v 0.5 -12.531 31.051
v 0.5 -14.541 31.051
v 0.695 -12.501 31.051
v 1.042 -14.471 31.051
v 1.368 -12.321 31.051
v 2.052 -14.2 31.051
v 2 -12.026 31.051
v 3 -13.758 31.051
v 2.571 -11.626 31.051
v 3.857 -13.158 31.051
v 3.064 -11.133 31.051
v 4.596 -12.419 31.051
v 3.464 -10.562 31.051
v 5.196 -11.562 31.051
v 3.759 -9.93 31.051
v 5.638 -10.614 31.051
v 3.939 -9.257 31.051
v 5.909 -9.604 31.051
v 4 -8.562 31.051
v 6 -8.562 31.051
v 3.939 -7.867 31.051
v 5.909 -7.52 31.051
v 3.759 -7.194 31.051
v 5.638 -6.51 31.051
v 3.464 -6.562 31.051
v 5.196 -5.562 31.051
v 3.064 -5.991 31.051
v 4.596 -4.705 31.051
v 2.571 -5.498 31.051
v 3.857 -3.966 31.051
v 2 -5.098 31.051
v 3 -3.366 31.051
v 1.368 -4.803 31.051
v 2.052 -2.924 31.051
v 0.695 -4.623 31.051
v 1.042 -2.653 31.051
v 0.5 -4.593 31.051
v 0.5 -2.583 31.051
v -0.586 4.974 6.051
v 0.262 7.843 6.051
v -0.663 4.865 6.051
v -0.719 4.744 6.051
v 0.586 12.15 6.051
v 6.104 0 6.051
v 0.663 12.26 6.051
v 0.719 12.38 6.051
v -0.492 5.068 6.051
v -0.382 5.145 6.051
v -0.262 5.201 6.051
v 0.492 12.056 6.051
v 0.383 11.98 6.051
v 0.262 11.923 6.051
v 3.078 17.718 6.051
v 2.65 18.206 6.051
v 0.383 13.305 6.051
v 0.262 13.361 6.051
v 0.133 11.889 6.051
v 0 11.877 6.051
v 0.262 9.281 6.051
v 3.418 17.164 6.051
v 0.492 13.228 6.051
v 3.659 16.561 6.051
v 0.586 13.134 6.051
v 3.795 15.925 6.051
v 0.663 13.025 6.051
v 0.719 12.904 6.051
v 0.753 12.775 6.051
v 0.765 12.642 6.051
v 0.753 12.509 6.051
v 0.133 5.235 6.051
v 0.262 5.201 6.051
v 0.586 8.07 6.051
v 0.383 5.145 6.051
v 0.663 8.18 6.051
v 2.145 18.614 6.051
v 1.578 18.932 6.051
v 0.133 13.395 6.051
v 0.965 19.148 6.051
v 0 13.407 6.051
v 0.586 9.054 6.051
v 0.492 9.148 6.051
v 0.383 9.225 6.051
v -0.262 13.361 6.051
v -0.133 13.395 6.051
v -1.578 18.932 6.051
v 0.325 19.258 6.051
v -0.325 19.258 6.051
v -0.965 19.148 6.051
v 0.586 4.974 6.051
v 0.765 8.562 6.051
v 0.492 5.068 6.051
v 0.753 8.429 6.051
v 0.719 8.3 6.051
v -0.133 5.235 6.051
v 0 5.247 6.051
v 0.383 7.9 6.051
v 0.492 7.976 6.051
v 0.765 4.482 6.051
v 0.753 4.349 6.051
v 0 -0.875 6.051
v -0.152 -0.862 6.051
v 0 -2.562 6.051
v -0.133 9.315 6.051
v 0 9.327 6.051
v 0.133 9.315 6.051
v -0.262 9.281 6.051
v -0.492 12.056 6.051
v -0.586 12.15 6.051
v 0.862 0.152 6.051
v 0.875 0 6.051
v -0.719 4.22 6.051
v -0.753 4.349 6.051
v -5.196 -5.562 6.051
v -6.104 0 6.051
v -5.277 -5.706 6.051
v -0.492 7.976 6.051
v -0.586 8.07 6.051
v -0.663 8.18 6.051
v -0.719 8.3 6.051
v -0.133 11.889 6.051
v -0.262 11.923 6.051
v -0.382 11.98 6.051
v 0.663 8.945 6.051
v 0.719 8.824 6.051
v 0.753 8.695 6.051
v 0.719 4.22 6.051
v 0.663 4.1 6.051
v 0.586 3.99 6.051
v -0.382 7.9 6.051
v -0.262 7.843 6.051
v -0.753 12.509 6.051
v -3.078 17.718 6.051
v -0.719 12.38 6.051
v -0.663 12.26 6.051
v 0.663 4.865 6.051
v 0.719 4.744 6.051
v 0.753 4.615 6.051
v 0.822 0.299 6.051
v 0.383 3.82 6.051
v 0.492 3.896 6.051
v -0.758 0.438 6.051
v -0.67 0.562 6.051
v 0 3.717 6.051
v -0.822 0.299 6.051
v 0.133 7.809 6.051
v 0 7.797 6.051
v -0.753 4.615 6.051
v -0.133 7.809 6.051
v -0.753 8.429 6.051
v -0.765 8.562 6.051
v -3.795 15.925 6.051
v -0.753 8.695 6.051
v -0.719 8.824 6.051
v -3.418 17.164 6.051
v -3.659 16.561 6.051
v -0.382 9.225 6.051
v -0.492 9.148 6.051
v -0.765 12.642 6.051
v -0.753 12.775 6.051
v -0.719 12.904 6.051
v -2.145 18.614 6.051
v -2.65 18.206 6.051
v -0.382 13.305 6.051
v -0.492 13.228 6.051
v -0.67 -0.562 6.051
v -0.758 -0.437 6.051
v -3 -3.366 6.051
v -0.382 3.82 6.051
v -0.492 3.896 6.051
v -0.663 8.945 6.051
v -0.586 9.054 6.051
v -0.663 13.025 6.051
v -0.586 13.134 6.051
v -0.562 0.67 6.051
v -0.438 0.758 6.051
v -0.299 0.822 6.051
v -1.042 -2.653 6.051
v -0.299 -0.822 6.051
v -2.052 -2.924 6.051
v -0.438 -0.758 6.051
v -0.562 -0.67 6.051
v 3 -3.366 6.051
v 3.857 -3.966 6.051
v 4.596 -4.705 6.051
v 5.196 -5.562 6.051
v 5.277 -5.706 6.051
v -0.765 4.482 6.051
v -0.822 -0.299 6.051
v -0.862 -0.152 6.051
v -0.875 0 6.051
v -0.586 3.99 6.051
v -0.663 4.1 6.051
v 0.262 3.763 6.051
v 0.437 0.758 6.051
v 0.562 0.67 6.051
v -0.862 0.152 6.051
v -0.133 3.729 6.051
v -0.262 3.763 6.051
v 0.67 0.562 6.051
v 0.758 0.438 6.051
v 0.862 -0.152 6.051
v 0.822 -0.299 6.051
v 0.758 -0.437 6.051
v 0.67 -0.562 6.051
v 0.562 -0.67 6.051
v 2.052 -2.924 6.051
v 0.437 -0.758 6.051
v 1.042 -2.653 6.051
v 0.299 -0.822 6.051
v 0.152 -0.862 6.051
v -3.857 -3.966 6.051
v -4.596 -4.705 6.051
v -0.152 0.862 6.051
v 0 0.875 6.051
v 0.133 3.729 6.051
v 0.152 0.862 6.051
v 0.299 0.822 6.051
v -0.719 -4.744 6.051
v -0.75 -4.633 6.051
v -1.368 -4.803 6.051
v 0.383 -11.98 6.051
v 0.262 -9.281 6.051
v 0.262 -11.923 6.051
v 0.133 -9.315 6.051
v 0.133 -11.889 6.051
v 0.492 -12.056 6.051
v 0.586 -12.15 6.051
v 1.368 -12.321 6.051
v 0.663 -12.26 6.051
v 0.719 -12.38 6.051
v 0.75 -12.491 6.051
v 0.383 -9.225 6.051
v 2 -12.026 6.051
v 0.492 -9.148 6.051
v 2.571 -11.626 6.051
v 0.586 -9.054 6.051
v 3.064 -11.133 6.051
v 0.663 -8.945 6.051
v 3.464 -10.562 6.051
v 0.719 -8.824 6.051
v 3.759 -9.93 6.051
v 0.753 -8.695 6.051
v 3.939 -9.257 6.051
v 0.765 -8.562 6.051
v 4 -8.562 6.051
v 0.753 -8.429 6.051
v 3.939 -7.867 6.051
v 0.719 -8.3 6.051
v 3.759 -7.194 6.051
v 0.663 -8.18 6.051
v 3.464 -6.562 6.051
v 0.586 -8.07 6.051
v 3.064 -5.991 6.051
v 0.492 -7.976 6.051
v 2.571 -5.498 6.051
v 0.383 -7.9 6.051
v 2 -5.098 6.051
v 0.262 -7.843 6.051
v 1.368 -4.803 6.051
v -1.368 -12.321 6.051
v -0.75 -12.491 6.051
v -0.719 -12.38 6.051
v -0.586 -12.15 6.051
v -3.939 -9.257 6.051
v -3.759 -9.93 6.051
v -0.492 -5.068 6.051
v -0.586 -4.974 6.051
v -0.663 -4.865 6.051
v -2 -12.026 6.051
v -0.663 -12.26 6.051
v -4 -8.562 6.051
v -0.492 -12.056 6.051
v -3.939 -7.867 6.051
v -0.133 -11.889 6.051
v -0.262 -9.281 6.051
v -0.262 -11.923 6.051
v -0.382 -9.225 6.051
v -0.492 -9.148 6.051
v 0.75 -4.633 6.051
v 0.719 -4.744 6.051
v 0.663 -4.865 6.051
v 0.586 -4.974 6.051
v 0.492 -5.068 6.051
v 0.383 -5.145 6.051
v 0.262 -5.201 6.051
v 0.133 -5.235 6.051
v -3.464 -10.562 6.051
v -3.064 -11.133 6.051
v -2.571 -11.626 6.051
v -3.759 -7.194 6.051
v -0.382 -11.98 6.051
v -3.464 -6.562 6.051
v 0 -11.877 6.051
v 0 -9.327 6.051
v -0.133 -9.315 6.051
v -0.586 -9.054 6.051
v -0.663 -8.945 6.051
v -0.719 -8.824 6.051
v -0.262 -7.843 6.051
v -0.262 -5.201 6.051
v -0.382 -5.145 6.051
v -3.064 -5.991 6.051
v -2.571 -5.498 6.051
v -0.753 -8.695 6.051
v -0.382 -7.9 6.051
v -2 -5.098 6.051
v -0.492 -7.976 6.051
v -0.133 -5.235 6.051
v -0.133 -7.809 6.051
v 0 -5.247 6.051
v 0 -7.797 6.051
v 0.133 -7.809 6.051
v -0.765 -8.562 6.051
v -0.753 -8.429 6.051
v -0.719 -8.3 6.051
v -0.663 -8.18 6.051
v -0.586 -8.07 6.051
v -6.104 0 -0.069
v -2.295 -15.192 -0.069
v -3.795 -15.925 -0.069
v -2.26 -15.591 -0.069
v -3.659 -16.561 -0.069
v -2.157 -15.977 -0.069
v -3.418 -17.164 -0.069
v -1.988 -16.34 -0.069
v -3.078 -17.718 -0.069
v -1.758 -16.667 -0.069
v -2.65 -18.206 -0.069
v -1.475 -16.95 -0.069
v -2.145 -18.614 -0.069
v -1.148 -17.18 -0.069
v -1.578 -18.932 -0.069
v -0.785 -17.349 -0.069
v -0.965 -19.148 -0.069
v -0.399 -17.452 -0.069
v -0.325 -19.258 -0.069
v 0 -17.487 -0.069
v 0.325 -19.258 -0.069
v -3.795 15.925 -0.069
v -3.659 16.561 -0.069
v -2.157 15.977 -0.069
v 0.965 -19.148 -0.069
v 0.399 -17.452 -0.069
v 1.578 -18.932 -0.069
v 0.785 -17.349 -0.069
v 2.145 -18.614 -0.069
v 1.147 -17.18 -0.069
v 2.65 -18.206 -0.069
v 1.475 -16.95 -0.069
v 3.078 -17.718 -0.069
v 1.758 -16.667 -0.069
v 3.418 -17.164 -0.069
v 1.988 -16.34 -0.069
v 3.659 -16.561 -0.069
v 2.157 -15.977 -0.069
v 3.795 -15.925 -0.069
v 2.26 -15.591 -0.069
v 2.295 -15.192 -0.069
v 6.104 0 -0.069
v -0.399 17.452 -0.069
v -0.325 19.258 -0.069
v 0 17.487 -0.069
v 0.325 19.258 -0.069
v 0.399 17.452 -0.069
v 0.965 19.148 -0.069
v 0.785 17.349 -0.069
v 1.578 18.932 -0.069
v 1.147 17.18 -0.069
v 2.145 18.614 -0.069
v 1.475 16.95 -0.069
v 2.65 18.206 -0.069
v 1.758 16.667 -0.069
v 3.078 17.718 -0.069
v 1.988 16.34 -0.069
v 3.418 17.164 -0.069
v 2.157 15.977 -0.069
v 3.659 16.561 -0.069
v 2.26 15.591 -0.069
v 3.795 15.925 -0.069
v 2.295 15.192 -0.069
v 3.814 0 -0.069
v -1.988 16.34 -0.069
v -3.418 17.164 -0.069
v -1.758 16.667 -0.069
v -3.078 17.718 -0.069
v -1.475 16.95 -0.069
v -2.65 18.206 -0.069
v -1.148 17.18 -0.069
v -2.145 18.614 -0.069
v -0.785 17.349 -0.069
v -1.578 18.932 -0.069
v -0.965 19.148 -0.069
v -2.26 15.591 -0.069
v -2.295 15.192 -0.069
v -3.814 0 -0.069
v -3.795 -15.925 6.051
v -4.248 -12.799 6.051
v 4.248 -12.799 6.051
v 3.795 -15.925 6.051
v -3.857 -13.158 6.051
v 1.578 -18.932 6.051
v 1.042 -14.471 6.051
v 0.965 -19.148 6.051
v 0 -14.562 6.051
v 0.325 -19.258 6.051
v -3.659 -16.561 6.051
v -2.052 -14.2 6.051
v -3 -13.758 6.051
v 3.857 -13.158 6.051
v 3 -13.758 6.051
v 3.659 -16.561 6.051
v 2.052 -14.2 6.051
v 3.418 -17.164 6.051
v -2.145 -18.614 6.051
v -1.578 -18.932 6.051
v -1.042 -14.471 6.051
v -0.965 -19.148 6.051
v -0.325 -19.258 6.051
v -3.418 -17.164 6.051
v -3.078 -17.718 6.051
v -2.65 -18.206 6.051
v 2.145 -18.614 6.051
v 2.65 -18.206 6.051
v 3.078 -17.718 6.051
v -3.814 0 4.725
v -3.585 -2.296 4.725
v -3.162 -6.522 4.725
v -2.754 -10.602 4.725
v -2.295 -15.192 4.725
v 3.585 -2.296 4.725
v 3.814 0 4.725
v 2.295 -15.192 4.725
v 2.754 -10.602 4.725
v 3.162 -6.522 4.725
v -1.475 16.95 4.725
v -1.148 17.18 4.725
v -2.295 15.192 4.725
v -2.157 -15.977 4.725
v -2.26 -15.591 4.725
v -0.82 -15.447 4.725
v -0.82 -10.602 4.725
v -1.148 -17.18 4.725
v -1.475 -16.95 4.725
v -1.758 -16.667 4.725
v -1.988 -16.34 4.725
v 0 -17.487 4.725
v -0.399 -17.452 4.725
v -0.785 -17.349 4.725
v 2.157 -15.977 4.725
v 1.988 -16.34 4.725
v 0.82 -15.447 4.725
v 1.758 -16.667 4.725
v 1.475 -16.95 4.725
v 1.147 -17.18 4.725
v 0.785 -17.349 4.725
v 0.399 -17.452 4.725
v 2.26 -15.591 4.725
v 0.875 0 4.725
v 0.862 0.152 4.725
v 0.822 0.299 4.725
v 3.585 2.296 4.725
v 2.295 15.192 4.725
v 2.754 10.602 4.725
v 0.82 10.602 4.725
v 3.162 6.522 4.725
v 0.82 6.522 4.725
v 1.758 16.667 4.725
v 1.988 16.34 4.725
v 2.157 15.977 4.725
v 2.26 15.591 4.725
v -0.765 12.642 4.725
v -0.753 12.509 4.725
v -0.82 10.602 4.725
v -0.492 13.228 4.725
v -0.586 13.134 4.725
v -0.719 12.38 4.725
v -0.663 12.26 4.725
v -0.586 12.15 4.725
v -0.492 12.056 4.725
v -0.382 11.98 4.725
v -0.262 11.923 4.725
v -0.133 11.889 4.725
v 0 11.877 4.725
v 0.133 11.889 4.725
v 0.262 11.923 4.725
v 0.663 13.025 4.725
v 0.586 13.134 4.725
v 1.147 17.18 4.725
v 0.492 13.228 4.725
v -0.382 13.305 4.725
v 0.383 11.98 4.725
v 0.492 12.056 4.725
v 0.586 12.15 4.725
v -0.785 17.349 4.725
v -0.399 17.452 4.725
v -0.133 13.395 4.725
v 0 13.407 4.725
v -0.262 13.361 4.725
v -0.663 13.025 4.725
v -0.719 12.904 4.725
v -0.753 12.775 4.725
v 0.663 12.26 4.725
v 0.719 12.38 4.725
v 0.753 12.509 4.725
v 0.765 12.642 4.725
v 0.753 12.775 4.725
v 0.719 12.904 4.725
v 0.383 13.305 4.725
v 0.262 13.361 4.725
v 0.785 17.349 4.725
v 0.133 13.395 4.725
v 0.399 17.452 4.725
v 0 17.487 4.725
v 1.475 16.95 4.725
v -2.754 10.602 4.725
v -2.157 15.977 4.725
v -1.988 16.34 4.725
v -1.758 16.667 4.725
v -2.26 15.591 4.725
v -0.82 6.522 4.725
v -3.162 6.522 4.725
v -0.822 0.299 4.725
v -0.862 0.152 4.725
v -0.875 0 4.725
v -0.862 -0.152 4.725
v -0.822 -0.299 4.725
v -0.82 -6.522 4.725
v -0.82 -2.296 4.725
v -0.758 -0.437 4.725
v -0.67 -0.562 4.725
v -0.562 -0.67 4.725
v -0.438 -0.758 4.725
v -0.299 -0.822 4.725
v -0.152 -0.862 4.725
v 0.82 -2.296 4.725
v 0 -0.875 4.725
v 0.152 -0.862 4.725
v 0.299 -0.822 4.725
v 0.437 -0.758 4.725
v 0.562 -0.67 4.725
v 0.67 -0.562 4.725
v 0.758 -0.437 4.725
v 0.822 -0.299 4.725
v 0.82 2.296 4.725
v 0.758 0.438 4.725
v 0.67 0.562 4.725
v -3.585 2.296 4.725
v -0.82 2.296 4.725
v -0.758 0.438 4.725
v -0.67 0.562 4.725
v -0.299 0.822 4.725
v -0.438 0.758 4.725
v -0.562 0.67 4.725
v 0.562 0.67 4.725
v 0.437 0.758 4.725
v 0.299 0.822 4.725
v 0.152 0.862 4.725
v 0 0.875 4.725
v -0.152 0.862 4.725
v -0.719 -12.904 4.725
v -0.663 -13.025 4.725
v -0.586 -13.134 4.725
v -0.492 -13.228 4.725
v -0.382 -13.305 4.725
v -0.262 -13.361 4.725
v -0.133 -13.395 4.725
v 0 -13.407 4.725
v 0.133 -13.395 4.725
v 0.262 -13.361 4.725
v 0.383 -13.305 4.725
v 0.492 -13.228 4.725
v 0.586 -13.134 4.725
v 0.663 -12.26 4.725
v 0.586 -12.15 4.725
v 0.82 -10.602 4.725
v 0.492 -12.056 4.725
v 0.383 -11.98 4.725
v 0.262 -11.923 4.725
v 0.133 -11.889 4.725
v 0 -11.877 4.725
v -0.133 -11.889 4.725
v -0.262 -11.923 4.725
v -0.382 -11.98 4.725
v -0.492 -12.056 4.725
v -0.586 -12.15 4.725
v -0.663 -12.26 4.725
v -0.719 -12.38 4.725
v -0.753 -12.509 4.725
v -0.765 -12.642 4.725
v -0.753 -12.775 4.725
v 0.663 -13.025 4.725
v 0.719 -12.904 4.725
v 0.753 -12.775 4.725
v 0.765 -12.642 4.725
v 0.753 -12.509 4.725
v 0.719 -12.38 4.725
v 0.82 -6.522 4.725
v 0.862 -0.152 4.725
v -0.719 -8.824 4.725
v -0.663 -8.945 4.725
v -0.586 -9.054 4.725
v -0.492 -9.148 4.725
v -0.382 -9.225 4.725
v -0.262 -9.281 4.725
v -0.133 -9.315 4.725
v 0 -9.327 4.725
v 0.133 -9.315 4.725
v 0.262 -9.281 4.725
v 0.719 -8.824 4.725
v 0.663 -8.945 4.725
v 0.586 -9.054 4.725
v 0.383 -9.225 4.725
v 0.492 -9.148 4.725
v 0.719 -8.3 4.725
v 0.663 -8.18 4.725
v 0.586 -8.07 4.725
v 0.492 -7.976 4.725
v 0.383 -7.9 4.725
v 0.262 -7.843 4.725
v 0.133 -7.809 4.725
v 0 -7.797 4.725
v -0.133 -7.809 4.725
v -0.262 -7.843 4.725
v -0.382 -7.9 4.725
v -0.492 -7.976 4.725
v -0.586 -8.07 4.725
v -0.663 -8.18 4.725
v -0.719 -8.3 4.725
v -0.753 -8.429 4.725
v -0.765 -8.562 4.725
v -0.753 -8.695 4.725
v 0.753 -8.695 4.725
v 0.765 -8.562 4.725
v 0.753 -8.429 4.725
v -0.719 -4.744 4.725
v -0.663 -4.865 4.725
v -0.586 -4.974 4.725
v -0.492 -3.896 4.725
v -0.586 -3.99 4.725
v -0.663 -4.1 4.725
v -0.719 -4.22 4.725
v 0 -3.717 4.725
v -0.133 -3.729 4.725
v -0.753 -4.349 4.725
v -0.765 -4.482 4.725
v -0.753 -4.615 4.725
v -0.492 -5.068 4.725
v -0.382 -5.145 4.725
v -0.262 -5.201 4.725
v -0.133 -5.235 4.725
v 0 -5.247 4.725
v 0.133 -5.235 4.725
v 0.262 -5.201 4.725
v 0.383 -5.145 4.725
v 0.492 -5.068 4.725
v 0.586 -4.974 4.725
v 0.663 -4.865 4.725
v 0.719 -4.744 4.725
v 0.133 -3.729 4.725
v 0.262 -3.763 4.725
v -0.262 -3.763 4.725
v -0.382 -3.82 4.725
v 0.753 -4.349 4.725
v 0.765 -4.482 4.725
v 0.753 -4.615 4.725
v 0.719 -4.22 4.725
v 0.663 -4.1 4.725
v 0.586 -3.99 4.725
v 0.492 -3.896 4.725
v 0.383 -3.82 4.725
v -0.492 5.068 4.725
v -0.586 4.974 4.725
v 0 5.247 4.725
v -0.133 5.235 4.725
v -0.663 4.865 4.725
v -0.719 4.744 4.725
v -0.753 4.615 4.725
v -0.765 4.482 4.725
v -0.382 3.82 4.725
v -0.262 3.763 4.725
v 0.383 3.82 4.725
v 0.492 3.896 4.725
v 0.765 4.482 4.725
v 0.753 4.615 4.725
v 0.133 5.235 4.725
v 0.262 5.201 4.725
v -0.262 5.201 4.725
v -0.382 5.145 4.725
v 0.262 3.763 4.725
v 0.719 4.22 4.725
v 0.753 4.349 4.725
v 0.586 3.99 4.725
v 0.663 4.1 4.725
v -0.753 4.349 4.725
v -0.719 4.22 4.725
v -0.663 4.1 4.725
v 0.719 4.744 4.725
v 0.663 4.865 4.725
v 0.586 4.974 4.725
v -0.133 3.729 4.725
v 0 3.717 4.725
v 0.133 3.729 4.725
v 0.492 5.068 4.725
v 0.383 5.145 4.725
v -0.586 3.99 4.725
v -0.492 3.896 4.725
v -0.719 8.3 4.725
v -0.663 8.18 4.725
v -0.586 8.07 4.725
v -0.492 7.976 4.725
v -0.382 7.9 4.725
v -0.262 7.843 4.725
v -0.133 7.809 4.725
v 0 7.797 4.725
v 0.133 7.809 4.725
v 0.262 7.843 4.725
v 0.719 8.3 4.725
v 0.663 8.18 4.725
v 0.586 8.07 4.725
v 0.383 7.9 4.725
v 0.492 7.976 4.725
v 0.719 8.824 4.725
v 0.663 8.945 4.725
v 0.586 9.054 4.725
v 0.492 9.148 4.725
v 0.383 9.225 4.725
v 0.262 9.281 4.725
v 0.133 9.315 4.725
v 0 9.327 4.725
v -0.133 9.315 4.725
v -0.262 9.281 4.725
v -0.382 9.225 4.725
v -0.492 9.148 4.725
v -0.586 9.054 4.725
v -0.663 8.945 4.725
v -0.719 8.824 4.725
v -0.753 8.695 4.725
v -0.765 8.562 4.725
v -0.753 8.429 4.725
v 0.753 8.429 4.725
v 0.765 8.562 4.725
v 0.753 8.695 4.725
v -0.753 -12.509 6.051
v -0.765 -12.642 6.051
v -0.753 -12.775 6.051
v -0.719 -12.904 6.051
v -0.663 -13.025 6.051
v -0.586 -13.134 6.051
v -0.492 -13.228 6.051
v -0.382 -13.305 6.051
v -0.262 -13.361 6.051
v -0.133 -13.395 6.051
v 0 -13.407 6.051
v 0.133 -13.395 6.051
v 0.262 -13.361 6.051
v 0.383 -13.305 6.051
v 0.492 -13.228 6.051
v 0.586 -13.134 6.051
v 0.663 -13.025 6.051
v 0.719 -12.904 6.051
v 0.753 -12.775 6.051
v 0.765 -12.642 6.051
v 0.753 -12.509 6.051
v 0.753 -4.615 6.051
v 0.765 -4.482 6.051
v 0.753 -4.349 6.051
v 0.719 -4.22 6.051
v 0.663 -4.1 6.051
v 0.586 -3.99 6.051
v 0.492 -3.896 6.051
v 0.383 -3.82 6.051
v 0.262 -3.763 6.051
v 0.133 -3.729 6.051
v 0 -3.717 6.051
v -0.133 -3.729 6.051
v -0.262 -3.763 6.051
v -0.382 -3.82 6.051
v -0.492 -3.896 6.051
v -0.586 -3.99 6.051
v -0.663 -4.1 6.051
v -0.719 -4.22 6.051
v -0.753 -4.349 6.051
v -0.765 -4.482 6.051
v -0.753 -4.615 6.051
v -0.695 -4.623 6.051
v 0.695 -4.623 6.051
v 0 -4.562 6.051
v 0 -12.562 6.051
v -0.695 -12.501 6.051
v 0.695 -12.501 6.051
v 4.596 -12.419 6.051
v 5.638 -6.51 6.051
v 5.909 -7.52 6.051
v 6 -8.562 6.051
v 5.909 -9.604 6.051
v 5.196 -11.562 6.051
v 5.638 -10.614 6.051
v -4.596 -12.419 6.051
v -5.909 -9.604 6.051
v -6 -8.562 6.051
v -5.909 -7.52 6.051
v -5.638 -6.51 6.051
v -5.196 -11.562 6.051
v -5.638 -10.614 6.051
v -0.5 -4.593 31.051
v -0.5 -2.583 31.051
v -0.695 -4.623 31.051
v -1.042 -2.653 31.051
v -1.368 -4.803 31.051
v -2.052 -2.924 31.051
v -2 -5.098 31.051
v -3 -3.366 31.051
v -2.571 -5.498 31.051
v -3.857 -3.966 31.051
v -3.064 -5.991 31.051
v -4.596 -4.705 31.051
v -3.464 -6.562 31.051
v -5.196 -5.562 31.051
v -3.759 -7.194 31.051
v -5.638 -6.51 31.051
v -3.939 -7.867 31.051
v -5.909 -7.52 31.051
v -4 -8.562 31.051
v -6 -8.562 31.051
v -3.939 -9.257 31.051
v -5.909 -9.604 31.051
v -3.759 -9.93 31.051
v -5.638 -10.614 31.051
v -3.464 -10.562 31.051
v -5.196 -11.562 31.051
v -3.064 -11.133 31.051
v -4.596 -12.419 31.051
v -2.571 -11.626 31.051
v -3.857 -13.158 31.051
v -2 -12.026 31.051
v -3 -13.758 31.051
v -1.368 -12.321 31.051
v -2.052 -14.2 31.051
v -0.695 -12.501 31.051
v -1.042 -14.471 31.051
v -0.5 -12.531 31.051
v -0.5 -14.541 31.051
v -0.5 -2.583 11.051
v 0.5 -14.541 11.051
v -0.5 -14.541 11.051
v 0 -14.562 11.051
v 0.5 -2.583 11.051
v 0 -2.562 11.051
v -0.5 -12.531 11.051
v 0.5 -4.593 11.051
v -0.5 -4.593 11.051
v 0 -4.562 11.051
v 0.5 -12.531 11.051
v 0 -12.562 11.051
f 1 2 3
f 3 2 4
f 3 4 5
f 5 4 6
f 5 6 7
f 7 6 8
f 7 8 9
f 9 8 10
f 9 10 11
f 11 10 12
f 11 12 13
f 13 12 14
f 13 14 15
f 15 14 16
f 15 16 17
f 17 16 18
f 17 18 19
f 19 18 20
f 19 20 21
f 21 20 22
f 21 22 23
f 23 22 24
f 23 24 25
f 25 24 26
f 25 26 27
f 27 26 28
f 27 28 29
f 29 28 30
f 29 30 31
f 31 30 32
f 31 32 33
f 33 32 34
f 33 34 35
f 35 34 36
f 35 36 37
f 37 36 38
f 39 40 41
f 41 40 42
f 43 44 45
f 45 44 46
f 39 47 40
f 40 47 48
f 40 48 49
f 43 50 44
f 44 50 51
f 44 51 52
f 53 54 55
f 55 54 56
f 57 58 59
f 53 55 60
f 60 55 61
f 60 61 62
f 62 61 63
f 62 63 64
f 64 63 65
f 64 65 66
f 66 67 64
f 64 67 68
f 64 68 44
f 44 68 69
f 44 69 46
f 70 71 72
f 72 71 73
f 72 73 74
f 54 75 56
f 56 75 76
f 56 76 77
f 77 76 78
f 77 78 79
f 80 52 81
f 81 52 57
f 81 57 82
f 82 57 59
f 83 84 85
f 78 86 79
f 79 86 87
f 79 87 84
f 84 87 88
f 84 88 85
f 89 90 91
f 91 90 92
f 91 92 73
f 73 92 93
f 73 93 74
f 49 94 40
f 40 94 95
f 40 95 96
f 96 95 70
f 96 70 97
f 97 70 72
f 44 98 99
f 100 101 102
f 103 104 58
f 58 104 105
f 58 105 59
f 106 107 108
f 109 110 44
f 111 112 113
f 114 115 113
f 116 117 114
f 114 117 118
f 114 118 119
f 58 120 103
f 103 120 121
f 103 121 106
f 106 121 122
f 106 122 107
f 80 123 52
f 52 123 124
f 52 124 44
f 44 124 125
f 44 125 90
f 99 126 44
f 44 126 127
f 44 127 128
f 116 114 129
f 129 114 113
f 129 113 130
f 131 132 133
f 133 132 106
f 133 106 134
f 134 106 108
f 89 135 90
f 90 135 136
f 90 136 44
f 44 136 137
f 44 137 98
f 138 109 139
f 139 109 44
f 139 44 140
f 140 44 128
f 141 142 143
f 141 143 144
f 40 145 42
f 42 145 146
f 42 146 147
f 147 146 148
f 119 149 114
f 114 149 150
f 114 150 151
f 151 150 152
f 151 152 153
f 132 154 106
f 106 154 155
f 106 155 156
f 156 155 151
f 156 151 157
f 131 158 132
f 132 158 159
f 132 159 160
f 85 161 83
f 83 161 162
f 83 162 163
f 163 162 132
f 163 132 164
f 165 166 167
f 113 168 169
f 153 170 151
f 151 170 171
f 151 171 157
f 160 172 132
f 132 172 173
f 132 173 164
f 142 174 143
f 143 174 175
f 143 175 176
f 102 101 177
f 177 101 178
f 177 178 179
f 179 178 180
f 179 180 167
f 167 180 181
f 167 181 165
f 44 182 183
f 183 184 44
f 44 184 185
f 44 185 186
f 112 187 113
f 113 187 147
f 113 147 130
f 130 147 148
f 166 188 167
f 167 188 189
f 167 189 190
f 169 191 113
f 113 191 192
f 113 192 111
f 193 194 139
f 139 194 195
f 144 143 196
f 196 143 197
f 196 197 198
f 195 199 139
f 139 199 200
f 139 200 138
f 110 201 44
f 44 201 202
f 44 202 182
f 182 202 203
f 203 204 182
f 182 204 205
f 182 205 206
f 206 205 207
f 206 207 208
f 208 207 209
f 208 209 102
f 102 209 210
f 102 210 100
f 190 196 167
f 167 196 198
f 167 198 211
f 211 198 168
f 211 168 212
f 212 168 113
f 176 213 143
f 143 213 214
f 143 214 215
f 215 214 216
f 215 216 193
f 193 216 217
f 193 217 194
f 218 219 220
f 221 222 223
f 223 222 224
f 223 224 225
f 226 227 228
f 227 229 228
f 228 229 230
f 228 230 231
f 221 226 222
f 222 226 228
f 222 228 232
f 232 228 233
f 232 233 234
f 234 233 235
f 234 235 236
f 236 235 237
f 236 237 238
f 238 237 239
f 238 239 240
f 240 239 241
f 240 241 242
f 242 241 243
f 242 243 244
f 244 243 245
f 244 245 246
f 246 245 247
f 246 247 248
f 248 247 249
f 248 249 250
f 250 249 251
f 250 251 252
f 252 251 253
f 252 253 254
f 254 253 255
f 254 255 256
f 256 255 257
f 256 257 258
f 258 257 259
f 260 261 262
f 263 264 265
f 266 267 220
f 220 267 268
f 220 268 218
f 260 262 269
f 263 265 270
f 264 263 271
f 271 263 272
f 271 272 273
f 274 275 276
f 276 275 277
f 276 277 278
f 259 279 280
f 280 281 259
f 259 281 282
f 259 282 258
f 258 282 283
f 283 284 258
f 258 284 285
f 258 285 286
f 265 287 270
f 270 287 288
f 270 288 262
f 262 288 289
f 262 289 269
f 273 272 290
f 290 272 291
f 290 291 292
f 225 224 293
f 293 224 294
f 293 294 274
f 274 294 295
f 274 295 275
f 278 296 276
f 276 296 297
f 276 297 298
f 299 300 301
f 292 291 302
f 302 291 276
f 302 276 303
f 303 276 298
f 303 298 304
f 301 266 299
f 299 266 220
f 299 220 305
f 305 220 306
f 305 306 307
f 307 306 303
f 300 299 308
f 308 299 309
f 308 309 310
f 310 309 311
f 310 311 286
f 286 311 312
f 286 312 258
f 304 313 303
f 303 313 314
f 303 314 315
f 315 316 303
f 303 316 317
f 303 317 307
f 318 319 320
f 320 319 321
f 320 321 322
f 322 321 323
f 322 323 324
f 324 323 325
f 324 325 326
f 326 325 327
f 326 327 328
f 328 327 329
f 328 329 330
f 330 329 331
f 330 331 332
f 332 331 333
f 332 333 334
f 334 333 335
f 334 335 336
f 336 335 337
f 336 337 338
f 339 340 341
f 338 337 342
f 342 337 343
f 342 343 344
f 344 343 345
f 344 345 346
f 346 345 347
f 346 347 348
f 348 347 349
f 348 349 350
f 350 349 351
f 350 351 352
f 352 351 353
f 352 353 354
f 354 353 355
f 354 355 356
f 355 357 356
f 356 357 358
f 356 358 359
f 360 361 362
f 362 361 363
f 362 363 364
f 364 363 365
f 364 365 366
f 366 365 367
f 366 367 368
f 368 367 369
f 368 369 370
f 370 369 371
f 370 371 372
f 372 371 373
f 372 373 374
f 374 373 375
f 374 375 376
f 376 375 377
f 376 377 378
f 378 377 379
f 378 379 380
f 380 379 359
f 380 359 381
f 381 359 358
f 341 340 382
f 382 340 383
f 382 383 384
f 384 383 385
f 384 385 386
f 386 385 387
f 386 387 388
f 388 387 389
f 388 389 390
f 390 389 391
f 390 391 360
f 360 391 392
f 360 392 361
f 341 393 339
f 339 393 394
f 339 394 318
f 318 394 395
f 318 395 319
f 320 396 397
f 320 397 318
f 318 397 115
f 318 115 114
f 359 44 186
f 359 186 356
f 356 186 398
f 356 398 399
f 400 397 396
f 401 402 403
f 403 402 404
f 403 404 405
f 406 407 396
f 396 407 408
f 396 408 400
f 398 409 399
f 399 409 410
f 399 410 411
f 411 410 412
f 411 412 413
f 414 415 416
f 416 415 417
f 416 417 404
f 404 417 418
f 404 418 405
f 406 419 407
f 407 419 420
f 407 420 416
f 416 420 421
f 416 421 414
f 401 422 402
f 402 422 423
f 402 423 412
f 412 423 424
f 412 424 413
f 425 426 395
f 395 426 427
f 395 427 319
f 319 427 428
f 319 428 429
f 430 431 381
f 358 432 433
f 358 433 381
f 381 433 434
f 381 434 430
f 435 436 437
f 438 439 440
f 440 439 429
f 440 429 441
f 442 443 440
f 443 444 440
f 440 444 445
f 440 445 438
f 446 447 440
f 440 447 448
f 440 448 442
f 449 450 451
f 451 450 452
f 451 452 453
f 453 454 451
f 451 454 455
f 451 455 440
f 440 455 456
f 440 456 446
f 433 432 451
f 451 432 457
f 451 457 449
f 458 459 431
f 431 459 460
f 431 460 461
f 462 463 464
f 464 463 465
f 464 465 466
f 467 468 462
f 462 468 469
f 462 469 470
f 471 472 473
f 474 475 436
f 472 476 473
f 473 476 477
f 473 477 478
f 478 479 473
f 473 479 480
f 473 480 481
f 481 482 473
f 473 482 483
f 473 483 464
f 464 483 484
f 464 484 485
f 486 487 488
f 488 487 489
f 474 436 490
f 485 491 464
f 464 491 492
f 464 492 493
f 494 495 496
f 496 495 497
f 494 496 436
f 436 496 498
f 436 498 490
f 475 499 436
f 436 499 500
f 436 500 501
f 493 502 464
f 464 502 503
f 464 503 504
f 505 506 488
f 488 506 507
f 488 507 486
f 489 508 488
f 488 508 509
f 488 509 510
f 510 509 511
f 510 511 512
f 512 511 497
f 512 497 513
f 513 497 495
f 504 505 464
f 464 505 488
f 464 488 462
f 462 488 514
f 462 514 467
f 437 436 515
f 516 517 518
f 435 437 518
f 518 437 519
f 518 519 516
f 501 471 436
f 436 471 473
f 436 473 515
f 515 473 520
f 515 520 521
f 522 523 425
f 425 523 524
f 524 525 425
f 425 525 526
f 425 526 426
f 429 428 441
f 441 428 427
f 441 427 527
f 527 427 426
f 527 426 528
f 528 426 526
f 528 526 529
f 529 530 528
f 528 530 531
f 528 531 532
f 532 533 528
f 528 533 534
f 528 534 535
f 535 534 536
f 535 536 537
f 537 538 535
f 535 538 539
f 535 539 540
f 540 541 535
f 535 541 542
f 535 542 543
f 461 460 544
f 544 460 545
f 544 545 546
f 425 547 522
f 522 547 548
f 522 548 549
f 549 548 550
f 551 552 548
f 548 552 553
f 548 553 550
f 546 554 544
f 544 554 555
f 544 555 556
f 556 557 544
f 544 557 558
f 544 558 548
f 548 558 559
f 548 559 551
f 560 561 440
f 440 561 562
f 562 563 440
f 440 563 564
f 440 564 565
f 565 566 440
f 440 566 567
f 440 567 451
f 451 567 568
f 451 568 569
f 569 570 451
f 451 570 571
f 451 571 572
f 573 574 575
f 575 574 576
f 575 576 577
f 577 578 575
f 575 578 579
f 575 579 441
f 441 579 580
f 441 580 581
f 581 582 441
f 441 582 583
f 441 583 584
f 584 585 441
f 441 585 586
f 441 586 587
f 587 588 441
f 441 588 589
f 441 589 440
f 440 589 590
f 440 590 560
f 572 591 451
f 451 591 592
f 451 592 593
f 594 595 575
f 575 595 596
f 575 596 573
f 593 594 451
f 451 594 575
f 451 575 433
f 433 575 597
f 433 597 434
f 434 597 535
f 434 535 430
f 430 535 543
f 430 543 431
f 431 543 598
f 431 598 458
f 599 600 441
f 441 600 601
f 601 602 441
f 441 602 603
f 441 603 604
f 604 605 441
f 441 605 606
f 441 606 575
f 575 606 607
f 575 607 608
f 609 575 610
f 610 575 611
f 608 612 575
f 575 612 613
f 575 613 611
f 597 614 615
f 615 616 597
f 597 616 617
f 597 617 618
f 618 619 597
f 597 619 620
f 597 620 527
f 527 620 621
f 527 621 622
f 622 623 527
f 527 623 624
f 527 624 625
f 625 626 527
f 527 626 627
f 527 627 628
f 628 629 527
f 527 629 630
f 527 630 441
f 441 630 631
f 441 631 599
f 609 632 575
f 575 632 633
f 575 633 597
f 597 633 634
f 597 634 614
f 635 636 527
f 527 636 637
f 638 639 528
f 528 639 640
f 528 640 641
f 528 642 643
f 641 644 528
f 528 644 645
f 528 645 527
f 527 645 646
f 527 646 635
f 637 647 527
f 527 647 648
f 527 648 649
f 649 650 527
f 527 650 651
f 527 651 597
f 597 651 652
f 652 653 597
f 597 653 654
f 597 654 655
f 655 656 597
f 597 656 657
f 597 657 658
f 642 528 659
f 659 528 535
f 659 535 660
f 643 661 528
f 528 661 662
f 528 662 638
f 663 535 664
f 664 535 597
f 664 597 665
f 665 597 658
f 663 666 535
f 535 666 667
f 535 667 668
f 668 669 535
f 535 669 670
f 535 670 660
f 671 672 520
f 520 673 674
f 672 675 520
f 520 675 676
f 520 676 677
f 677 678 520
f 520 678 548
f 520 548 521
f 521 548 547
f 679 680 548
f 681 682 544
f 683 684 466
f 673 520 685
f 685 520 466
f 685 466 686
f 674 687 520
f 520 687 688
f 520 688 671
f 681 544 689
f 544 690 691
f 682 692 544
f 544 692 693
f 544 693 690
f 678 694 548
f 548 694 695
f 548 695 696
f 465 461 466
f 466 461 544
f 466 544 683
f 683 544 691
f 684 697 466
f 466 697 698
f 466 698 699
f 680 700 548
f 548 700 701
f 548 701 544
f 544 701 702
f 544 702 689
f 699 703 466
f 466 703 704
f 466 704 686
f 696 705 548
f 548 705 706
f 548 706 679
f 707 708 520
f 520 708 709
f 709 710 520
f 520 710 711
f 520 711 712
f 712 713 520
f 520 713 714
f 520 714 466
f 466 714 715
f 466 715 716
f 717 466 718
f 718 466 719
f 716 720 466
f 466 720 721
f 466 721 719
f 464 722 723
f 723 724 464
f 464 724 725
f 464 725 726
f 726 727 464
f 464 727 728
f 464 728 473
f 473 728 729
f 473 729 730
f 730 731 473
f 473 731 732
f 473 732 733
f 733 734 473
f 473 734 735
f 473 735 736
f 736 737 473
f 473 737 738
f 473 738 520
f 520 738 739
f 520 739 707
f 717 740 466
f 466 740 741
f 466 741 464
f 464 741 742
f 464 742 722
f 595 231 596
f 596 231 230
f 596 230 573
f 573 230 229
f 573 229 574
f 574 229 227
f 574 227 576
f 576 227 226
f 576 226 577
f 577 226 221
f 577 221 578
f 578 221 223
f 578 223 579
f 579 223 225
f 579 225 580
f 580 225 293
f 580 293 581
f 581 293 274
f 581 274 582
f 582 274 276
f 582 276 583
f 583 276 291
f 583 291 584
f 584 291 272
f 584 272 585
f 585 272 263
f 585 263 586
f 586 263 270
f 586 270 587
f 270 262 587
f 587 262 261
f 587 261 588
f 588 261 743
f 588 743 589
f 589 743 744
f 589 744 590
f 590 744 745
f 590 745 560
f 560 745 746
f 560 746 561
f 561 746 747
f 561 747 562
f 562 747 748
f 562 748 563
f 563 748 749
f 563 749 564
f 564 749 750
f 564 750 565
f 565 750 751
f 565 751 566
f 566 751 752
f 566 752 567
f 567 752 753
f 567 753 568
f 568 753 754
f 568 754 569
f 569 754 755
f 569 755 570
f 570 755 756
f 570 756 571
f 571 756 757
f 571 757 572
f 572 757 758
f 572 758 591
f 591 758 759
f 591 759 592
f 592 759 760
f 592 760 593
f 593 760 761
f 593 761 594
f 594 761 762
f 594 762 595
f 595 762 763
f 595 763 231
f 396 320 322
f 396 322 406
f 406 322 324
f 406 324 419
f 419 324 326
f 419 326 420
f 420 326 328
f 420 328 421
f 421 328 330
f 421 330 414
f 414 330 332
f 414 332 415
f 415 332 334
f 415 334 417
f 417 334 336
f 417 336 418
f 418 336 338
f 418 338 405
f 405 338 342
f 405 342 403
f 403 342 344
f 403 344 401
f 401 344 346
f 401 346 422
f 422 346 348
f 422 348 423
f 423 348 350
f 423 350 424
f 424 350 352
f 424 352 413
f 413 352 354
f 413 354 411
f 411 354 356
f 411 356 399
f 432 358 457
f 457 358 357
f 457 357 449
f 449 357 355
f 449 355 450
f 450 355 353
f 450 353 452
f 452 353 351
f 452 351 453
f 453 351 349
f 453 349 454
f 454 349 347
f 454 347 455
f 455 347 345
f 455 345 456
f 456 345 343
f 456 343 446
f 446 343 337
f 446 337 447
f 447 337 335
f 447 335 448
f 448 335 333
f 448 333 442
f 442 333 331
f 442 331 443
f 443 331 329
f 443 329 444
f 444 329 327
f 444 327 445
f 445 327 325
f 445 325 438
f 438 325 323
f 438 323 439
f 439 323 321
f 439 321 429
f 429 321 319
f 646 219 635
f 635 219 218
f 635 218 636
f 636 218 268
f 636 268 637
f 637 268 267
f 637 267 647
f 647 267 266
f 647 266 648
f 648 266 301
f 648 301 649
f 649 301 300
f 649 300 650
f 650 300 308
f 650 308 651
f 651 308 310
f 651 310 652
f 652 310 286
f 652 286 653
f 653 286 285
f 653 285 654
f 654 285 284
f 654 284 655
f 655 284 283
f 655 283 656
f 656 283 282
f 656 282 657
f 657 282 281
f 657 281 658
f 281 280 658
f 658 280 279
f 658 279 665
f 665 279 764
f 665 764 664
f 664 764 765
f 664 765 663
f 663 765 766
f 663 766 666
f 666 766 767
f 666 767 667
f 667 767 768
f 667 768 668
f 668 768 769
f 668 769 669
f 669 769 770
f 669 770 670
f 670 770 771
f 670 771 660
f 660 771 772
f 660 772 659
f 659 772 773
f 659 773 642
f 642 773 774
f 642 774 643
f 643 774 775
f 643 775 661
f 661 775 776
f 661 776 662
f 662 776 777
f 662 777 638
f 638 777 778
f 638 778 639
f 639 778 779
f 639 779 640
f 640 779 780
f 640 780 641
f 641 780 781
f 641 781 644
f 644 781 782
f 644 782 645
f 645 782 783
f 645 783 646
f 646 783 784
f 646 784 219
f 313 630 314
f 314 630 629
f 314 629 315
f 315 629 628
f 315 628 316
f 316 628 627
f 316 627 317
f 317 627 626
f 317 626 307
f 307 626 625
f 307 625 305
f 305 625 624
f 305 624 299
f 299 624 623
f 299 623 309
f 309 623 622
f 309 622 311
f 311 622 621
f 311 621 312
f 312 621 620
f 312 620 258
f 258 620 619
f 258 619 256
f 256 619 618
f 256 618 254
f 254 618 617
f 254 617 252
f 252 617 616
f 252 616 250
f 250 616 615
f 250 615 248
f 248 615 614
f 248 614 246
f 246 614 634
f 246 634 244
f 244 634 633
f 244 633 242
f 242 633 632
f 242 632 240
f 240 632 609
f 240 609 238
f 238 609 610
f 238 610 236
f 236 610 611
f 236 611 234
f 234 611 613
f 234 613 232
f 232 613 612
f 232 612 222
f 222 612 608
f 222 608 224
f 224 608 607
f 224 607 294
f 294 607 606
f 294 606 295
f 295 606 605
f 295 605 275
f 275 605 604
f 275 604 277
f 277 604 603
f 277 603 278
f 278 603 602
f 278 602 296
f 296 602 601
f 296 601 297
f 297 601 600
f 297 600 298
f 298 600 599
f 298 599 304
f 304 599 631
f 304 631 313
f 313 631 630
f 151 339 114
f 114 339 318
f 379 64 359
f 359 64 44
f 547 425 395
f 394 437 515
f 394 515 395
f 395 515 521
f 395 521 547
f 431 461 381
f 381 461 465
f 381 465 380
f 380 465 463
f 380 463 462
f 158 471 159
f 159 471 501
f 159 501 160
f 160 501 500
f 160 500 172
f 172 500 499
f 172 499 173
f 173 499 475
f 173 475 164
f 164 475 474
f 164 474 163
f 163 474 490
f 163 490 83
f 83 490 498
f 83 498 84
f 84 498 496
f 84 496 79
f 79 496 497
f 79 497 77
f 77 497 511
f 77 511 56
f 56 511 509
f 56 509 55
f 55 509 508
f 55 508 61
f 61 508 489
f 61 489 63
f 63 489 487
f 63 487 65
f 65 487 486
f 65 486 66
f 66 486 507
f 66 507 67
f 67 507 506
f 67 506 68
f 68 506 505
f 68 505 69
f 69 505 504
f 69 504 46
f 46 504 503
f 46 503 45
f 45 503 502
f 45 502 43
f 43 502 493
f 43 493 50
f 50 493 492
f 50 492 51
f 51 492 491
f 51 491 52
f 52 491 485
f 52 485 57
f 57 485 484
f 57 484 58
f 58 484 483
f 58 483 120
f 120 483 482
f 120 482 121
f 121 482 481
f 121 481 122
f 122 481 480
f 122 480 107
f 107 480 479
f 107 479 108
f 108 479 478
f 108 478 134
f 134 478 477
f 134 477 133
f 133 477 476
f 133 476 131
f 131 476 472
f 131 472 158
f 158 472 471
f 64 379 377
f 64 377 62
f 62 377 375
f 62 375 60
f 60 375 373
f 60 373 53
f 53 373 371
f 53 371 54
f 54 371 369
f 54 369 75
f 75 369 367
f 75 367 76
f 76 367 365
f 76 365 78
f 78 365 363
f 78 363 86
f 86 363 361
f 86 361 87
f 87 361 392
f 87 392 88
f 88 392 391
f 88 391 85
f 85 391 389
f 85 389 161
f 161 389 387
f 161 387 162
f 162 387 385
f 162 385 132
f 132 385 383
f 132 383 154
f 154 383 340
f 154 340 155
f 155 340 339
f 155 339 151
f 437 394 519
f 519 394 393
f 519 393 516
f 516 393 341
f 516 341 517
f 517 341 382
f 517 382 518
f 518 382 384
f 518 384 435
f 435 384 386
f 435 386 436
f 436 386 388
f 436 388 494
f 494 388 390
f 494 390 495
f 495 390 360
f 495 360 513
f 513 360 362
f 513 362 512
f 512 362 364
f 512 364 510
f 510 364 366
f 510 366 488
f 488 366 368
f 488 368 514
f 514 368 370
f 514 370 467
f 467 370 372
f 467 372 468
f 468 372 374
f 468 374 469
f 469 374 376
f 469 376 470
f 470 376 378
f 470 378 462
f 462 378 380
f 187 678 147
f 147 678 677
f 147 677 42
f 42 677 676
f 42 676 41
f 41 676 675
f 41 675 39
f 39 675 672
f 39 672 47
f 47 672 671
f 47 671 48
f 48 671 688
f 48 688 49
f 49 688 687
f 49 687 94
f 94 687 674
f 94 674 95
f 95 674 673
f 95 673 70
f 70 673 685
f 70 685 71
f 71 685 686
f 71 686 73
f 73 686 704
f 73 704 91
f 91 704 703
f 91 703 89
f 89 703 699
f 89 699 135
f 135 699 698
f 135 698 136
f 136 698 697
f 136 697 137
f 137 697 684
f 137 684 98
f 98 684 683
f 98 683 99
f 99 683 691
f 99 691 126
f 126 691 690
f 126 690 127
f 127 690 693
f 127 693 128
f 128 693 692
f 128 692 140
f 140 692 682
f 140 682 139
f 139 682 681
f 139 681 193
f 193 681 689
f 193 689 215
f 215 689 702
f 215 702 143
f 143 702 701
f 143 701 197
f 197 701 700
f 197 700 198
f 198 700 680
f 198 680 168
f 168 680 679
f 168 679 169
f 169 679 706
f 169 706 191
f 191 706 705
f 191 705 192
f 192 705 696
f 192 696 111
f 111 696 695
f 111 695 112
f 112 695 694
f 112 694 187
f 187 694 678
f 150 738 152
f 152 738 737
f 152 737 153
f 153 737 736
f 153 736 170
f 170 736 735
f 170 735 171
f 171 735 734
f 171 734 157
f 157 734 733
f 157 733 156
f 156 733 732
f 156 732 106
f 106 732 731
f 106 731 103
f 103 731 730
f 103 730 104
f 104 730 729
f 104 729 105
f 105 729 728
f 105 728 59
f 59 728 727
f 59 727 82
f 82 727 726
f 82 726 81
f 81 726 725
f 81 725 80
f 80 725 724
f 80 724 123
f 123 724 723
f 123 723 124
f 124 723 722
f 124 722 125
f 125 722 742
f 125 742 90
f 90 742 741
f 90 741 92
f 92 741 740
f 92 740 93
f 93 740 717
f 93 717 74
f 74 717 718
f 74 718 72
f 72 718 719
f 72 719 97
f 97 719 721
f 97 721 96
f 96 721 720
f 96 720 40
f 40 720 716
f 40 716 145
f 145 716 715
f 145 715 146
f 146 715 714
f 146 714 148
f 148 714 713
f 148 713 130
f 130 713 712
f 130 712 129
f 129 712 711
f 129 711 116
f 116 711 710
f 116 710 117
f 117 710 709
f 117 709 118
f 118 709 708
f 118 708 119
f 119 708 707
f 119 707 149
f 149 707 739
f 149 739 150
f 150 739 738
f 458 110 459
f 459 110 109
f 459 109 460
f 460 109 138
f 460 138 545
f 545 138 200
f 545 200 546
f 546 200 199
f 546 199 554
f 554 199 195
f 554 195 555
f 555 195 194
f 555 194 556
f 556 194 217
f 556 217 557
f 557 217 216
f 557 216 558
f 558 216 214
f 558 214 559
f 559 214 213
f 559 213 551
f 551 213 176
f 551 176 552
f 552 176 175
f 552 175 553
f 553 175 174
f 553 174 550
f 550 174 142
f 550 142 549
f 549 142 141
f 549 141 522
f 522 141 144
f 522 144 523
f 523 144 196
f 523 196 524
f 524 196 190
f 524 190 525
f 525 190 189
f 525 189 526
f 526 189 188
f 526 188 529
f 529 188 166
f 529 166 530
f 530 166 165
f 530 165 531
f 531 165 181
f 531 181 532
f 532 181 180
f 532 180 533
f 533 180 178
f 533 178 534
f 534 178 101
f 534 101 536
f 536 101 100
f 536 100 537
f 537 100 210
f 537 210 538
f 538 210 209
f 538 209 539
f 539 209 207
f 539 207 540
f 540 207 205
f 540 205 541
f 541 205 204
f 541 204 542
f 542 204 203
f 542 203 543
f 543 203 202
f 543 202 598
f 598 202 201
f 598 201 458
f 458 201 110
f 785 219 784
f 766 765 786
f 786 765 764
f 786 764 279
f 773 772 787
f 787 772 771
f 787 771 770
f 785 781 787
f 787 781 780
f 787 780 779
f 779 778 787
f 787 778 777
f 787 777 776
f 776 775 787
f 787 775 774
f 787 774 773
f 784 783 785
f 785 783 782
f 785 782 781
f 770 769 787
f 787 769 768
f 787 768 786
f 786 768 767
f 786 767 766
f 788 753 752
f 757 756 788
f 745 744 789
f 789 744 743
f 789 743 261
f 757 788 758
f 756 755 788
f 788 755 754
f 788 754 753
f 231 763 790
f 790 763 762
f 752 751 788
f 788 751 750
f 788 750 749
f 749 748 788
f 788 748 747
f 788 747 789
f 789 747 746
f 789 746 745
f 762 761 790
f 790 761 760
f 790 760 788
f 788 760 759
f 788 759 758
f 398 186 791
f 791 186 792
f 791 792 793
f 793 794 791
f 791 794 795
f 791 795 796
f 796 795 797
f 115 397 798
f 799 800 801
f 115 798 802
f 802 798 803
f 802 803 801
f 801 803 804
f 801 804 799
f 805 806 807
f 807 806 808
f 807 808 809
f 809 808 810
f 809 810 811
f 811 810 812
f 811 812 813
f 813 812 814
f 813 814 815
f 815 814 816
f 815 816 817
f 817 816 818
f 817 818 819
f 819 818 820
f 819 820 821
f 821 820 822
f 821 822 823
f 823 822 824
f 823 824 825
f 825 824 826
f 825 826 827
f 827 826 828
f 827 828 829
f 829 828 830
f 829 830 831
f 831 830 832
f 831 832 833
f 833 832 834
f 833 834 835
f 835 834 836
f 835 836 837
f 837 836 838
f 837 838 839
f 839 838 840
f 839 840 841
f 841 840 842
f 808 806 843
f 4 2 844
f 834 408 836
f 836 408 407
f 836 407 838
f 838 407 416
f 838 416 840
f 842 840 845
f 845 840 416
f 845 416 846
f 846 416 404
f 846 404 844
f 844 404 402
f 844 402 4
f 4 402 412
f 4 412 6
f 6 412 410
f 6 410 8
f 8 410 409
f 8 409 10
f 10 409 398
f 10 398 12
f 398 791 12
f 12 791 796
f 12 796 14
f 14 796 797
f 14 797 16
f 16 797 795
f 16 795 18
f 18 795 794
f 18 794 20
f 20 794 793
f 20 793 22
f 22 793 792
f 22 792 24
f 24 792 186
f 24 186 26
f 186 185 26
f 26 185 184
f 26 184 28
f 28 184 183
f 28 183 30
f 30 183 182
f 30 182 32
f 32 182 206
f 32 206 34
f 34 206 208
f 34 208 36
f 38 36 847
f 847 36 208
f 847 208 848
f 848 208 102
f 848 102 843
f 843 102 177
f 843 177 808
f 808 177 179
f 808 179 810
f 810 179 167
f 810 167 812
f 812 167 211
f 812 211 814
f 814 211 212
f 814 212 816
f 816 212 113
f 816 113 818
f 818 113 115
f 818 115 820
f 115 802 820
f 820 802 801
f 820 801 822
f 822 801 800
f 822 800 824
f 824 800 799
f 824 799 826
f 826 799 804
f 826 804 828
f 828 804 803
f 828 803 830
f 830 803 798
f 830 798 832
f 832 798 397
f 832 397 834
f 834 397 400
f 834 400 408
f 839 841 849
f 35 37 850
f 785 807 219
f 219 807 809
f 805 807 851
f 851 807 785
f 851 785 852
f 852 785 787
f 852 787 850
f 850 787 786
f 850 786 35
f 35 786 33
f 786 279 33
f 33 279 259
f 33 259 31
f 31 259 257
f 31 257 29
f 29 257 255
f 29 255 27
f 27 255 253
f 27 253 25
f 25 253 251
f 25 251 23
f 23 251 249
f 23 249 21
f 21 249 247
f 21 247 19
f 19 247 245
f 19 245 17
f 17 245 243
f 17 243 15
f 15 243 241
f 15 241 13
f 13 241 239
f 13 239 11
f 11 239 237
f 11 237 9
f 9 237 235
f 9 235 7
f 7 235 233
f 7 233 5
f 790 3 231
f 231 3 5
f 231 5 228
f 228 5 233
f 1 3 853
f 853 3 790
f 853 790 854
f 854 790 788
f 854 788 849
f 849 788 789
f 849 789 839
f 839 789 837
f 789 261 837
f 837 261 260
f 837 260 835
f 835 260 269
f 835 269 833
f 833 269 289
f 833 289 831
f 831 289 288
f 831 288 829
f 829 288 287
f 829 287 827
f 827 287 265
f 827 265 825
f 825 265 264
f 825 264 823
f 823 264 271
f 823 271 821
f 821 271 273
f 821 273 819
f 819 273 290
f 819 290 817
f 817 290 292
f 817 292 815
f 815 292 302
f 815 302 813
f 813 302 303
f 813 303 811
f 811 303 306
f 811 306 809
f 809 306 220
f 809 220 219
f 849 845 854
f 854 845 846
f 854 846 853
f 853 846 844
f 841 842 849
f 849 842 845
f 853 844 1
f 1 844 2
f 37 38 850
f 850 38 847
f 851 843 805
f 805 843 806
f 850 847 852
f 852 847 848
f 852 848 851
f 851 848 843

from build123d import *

# Parameters (mm, degrees)
BOSS_EXTRUDE1_DEPTH     = 6
CUT_EXTRUDE3_DEPTH      = 4.7
CUT_EXTRUDE4_DEPTH      = 21.471687766
CUT_EXTRUDE4_DEPTH_BACK = 21.471687766
SKETCH4_R               = 0.75
SKETCH6_R               = 0.75
CUT_EXTRUDE6_DEPTH      = 21.471687766
LPATTERN1_COUNT         = 3
LPATTERN1_PITCH         = 4
SCALE1_SCALE            = 1.02
SKETCH7_W               = 12.24
SKETCH7_H               = 6.12
CUT_EXTRUDE7_DEPTH      = 22.106506047
SKETCH8_R               = 0.875
CUT_EXTRUDE8_DEPTH      = 22.121773144
SKETCH9_R               = 6
SKETCH9_R_2             = 4
BOSS_EXTRUDE2_DEPTH     = 25
SKETCH10_W              = 1
SKETCH10_H              = 40
CUT_EXTRUDE9_DEPTH      = 38.052107321


with BuildPart() as part:
    # Sketch2 → Boss-Extrude1 (new body)
    with BuildSketch(Plane.XY):
        with BuildLine():
            Line((-6, 0), (-3.720572803, -15.718868867))
            ThreePointArc((-3.720572803, -15.718868867), (-5.969e-06, -19), (3.720571311, -15.71888071))
            Line((3.720571311, -15.71888071), (6, 0))
            ThreePointArc((6, 0), (0, 6), (-6, 0))
        make_face()
    extrude(amount=BOSS_EXTRUDE1_DEPTH)

    # Sketch3 → Cut-Extrude3 (cut)
    with BuildSketch(Plane.XY):
        with BuildLine():
            Line((-3.75, 0), (-2.25, -15))
            ThreePointArc((-2.25, -15), (0, -17.25), (2.25, -15))
            Line((2.25, -15), (3.75, 0))
            ThreePointArc((3.75, 0), (0, 3.75), (-3.75, 0))
        make_face()
    extrude(amount=CUT_EXTRUDE3_DEPTH, mode=Mode.SUBTRACT)

    # Sketch4 → Cut-Extrude4 (cut, two sides: drawn at the far end of the back side and taken through both)
    with BuildSketch(Plane(origin=(0, 0, 4.7), x_dir=(-1, 0, 0), z_dir=(0, 0, -1)).offset(-CUT_EXTRUDE4_DEPTH_BACK)):
        Circle(SKETCH4_R)
    extrude(amount=CUT_EXTRUDE4_DEPTH + CUT_EXTRUDE4_DEPTH_BACK, mode=Mode.SUBTRACT)

    # Sketch6 → Cut-Extrude6 (cut, symmetric)
    with BuildSketch(Plane(origin=(0, 0, 4.7), x_dir=(-1, 0, 0), z_dir=(0, 0, -1))):
        with Locations((0, -4.5)):
            Circle(SKETCH6_R)
    cut_extrude6 = extrude(amount=CUT_EXTRUDE6_DEPTH, both=True, mode=Mode.SUBTRACT)

    # LPattern1: Cut-Extrude6 ×3
    with Locations(*[(0, -i * LPATTERN1_PITCH, 0) for i in range(1, LPATTERN1_COUNT)]):
        add(cut_extrude6, mode=Mode.SUBTRACT)


with BuildPart() as part_1:
    # Scale1: scaled about (6e-08, -5.397561761, 3.434577722)
    add(part.part.scale(SCALE1_SCALE).moved(Location((-1e-09, 0.107951235, -0.068691554))))

    # Sketch7 → Cut-Extrude7 (cut, through all)
    with BuildSketch(Plane(origin=(0, 0, 0), x_dir=(1, 0, 0), z_dir=(0, 1, 0))):
        with Locations((-1e-09, -2.991308446)):
            Rectangle(SKETCH7_W, SKETCH7_H)
    extrude(amount=CUT_EXTRUDE7_DEPTH, mode=Mode.SUBTRACT)

    # Mirror3: part across plane


with BuildPart() as part_2:
    add(part_1.part)
    add(part_1.part.mirror(Plane.ZX))

    # Sketch8 → Cut-Extrude8 (cut, through all)
    with BuildSketch(Plane.XY.offset(6.051308446)):
        Circle(SKETCH8_R)
    extrude(amount=-CUT_EXTRUDE8_DEPTH, mode=Mode.SUBTRACT)

    # Sketch9 → Boss-Extrude2 (add)
    with BuildSketch(Plane.XY.offset(6.051308446)):
        with Locations(Location((-1e-09, -8.562048765, 0), (0, 0, 151.579121381))):
            Circle(SKETCH9_R)
        with Locations(Location((-1e-09, -8.562048765, 0), (0, 0, 100.806376462))):
            Circle(SKETCH9_R_2, mode=Mode.SUBTRACT)
    extrude(amount=BOSS_EXTRUDE2_DEPTH)

    # Sketch10 → Cut-Extrude9 (cut, through all)
    with BuildSketch(Plane(origin=(0, 0, 0), x_dir=(1, 0, 0), z_dir=(0, 1, 0))):
        with Locations((0, -31.051308446)):
            Rectangle(SKETCH10_W, SKETCH10_H)
    extrude(amount=-CUT_EXTRUDE9_DEPTH, mode=Mode.SUBTRACT)


solid = part_2.part
